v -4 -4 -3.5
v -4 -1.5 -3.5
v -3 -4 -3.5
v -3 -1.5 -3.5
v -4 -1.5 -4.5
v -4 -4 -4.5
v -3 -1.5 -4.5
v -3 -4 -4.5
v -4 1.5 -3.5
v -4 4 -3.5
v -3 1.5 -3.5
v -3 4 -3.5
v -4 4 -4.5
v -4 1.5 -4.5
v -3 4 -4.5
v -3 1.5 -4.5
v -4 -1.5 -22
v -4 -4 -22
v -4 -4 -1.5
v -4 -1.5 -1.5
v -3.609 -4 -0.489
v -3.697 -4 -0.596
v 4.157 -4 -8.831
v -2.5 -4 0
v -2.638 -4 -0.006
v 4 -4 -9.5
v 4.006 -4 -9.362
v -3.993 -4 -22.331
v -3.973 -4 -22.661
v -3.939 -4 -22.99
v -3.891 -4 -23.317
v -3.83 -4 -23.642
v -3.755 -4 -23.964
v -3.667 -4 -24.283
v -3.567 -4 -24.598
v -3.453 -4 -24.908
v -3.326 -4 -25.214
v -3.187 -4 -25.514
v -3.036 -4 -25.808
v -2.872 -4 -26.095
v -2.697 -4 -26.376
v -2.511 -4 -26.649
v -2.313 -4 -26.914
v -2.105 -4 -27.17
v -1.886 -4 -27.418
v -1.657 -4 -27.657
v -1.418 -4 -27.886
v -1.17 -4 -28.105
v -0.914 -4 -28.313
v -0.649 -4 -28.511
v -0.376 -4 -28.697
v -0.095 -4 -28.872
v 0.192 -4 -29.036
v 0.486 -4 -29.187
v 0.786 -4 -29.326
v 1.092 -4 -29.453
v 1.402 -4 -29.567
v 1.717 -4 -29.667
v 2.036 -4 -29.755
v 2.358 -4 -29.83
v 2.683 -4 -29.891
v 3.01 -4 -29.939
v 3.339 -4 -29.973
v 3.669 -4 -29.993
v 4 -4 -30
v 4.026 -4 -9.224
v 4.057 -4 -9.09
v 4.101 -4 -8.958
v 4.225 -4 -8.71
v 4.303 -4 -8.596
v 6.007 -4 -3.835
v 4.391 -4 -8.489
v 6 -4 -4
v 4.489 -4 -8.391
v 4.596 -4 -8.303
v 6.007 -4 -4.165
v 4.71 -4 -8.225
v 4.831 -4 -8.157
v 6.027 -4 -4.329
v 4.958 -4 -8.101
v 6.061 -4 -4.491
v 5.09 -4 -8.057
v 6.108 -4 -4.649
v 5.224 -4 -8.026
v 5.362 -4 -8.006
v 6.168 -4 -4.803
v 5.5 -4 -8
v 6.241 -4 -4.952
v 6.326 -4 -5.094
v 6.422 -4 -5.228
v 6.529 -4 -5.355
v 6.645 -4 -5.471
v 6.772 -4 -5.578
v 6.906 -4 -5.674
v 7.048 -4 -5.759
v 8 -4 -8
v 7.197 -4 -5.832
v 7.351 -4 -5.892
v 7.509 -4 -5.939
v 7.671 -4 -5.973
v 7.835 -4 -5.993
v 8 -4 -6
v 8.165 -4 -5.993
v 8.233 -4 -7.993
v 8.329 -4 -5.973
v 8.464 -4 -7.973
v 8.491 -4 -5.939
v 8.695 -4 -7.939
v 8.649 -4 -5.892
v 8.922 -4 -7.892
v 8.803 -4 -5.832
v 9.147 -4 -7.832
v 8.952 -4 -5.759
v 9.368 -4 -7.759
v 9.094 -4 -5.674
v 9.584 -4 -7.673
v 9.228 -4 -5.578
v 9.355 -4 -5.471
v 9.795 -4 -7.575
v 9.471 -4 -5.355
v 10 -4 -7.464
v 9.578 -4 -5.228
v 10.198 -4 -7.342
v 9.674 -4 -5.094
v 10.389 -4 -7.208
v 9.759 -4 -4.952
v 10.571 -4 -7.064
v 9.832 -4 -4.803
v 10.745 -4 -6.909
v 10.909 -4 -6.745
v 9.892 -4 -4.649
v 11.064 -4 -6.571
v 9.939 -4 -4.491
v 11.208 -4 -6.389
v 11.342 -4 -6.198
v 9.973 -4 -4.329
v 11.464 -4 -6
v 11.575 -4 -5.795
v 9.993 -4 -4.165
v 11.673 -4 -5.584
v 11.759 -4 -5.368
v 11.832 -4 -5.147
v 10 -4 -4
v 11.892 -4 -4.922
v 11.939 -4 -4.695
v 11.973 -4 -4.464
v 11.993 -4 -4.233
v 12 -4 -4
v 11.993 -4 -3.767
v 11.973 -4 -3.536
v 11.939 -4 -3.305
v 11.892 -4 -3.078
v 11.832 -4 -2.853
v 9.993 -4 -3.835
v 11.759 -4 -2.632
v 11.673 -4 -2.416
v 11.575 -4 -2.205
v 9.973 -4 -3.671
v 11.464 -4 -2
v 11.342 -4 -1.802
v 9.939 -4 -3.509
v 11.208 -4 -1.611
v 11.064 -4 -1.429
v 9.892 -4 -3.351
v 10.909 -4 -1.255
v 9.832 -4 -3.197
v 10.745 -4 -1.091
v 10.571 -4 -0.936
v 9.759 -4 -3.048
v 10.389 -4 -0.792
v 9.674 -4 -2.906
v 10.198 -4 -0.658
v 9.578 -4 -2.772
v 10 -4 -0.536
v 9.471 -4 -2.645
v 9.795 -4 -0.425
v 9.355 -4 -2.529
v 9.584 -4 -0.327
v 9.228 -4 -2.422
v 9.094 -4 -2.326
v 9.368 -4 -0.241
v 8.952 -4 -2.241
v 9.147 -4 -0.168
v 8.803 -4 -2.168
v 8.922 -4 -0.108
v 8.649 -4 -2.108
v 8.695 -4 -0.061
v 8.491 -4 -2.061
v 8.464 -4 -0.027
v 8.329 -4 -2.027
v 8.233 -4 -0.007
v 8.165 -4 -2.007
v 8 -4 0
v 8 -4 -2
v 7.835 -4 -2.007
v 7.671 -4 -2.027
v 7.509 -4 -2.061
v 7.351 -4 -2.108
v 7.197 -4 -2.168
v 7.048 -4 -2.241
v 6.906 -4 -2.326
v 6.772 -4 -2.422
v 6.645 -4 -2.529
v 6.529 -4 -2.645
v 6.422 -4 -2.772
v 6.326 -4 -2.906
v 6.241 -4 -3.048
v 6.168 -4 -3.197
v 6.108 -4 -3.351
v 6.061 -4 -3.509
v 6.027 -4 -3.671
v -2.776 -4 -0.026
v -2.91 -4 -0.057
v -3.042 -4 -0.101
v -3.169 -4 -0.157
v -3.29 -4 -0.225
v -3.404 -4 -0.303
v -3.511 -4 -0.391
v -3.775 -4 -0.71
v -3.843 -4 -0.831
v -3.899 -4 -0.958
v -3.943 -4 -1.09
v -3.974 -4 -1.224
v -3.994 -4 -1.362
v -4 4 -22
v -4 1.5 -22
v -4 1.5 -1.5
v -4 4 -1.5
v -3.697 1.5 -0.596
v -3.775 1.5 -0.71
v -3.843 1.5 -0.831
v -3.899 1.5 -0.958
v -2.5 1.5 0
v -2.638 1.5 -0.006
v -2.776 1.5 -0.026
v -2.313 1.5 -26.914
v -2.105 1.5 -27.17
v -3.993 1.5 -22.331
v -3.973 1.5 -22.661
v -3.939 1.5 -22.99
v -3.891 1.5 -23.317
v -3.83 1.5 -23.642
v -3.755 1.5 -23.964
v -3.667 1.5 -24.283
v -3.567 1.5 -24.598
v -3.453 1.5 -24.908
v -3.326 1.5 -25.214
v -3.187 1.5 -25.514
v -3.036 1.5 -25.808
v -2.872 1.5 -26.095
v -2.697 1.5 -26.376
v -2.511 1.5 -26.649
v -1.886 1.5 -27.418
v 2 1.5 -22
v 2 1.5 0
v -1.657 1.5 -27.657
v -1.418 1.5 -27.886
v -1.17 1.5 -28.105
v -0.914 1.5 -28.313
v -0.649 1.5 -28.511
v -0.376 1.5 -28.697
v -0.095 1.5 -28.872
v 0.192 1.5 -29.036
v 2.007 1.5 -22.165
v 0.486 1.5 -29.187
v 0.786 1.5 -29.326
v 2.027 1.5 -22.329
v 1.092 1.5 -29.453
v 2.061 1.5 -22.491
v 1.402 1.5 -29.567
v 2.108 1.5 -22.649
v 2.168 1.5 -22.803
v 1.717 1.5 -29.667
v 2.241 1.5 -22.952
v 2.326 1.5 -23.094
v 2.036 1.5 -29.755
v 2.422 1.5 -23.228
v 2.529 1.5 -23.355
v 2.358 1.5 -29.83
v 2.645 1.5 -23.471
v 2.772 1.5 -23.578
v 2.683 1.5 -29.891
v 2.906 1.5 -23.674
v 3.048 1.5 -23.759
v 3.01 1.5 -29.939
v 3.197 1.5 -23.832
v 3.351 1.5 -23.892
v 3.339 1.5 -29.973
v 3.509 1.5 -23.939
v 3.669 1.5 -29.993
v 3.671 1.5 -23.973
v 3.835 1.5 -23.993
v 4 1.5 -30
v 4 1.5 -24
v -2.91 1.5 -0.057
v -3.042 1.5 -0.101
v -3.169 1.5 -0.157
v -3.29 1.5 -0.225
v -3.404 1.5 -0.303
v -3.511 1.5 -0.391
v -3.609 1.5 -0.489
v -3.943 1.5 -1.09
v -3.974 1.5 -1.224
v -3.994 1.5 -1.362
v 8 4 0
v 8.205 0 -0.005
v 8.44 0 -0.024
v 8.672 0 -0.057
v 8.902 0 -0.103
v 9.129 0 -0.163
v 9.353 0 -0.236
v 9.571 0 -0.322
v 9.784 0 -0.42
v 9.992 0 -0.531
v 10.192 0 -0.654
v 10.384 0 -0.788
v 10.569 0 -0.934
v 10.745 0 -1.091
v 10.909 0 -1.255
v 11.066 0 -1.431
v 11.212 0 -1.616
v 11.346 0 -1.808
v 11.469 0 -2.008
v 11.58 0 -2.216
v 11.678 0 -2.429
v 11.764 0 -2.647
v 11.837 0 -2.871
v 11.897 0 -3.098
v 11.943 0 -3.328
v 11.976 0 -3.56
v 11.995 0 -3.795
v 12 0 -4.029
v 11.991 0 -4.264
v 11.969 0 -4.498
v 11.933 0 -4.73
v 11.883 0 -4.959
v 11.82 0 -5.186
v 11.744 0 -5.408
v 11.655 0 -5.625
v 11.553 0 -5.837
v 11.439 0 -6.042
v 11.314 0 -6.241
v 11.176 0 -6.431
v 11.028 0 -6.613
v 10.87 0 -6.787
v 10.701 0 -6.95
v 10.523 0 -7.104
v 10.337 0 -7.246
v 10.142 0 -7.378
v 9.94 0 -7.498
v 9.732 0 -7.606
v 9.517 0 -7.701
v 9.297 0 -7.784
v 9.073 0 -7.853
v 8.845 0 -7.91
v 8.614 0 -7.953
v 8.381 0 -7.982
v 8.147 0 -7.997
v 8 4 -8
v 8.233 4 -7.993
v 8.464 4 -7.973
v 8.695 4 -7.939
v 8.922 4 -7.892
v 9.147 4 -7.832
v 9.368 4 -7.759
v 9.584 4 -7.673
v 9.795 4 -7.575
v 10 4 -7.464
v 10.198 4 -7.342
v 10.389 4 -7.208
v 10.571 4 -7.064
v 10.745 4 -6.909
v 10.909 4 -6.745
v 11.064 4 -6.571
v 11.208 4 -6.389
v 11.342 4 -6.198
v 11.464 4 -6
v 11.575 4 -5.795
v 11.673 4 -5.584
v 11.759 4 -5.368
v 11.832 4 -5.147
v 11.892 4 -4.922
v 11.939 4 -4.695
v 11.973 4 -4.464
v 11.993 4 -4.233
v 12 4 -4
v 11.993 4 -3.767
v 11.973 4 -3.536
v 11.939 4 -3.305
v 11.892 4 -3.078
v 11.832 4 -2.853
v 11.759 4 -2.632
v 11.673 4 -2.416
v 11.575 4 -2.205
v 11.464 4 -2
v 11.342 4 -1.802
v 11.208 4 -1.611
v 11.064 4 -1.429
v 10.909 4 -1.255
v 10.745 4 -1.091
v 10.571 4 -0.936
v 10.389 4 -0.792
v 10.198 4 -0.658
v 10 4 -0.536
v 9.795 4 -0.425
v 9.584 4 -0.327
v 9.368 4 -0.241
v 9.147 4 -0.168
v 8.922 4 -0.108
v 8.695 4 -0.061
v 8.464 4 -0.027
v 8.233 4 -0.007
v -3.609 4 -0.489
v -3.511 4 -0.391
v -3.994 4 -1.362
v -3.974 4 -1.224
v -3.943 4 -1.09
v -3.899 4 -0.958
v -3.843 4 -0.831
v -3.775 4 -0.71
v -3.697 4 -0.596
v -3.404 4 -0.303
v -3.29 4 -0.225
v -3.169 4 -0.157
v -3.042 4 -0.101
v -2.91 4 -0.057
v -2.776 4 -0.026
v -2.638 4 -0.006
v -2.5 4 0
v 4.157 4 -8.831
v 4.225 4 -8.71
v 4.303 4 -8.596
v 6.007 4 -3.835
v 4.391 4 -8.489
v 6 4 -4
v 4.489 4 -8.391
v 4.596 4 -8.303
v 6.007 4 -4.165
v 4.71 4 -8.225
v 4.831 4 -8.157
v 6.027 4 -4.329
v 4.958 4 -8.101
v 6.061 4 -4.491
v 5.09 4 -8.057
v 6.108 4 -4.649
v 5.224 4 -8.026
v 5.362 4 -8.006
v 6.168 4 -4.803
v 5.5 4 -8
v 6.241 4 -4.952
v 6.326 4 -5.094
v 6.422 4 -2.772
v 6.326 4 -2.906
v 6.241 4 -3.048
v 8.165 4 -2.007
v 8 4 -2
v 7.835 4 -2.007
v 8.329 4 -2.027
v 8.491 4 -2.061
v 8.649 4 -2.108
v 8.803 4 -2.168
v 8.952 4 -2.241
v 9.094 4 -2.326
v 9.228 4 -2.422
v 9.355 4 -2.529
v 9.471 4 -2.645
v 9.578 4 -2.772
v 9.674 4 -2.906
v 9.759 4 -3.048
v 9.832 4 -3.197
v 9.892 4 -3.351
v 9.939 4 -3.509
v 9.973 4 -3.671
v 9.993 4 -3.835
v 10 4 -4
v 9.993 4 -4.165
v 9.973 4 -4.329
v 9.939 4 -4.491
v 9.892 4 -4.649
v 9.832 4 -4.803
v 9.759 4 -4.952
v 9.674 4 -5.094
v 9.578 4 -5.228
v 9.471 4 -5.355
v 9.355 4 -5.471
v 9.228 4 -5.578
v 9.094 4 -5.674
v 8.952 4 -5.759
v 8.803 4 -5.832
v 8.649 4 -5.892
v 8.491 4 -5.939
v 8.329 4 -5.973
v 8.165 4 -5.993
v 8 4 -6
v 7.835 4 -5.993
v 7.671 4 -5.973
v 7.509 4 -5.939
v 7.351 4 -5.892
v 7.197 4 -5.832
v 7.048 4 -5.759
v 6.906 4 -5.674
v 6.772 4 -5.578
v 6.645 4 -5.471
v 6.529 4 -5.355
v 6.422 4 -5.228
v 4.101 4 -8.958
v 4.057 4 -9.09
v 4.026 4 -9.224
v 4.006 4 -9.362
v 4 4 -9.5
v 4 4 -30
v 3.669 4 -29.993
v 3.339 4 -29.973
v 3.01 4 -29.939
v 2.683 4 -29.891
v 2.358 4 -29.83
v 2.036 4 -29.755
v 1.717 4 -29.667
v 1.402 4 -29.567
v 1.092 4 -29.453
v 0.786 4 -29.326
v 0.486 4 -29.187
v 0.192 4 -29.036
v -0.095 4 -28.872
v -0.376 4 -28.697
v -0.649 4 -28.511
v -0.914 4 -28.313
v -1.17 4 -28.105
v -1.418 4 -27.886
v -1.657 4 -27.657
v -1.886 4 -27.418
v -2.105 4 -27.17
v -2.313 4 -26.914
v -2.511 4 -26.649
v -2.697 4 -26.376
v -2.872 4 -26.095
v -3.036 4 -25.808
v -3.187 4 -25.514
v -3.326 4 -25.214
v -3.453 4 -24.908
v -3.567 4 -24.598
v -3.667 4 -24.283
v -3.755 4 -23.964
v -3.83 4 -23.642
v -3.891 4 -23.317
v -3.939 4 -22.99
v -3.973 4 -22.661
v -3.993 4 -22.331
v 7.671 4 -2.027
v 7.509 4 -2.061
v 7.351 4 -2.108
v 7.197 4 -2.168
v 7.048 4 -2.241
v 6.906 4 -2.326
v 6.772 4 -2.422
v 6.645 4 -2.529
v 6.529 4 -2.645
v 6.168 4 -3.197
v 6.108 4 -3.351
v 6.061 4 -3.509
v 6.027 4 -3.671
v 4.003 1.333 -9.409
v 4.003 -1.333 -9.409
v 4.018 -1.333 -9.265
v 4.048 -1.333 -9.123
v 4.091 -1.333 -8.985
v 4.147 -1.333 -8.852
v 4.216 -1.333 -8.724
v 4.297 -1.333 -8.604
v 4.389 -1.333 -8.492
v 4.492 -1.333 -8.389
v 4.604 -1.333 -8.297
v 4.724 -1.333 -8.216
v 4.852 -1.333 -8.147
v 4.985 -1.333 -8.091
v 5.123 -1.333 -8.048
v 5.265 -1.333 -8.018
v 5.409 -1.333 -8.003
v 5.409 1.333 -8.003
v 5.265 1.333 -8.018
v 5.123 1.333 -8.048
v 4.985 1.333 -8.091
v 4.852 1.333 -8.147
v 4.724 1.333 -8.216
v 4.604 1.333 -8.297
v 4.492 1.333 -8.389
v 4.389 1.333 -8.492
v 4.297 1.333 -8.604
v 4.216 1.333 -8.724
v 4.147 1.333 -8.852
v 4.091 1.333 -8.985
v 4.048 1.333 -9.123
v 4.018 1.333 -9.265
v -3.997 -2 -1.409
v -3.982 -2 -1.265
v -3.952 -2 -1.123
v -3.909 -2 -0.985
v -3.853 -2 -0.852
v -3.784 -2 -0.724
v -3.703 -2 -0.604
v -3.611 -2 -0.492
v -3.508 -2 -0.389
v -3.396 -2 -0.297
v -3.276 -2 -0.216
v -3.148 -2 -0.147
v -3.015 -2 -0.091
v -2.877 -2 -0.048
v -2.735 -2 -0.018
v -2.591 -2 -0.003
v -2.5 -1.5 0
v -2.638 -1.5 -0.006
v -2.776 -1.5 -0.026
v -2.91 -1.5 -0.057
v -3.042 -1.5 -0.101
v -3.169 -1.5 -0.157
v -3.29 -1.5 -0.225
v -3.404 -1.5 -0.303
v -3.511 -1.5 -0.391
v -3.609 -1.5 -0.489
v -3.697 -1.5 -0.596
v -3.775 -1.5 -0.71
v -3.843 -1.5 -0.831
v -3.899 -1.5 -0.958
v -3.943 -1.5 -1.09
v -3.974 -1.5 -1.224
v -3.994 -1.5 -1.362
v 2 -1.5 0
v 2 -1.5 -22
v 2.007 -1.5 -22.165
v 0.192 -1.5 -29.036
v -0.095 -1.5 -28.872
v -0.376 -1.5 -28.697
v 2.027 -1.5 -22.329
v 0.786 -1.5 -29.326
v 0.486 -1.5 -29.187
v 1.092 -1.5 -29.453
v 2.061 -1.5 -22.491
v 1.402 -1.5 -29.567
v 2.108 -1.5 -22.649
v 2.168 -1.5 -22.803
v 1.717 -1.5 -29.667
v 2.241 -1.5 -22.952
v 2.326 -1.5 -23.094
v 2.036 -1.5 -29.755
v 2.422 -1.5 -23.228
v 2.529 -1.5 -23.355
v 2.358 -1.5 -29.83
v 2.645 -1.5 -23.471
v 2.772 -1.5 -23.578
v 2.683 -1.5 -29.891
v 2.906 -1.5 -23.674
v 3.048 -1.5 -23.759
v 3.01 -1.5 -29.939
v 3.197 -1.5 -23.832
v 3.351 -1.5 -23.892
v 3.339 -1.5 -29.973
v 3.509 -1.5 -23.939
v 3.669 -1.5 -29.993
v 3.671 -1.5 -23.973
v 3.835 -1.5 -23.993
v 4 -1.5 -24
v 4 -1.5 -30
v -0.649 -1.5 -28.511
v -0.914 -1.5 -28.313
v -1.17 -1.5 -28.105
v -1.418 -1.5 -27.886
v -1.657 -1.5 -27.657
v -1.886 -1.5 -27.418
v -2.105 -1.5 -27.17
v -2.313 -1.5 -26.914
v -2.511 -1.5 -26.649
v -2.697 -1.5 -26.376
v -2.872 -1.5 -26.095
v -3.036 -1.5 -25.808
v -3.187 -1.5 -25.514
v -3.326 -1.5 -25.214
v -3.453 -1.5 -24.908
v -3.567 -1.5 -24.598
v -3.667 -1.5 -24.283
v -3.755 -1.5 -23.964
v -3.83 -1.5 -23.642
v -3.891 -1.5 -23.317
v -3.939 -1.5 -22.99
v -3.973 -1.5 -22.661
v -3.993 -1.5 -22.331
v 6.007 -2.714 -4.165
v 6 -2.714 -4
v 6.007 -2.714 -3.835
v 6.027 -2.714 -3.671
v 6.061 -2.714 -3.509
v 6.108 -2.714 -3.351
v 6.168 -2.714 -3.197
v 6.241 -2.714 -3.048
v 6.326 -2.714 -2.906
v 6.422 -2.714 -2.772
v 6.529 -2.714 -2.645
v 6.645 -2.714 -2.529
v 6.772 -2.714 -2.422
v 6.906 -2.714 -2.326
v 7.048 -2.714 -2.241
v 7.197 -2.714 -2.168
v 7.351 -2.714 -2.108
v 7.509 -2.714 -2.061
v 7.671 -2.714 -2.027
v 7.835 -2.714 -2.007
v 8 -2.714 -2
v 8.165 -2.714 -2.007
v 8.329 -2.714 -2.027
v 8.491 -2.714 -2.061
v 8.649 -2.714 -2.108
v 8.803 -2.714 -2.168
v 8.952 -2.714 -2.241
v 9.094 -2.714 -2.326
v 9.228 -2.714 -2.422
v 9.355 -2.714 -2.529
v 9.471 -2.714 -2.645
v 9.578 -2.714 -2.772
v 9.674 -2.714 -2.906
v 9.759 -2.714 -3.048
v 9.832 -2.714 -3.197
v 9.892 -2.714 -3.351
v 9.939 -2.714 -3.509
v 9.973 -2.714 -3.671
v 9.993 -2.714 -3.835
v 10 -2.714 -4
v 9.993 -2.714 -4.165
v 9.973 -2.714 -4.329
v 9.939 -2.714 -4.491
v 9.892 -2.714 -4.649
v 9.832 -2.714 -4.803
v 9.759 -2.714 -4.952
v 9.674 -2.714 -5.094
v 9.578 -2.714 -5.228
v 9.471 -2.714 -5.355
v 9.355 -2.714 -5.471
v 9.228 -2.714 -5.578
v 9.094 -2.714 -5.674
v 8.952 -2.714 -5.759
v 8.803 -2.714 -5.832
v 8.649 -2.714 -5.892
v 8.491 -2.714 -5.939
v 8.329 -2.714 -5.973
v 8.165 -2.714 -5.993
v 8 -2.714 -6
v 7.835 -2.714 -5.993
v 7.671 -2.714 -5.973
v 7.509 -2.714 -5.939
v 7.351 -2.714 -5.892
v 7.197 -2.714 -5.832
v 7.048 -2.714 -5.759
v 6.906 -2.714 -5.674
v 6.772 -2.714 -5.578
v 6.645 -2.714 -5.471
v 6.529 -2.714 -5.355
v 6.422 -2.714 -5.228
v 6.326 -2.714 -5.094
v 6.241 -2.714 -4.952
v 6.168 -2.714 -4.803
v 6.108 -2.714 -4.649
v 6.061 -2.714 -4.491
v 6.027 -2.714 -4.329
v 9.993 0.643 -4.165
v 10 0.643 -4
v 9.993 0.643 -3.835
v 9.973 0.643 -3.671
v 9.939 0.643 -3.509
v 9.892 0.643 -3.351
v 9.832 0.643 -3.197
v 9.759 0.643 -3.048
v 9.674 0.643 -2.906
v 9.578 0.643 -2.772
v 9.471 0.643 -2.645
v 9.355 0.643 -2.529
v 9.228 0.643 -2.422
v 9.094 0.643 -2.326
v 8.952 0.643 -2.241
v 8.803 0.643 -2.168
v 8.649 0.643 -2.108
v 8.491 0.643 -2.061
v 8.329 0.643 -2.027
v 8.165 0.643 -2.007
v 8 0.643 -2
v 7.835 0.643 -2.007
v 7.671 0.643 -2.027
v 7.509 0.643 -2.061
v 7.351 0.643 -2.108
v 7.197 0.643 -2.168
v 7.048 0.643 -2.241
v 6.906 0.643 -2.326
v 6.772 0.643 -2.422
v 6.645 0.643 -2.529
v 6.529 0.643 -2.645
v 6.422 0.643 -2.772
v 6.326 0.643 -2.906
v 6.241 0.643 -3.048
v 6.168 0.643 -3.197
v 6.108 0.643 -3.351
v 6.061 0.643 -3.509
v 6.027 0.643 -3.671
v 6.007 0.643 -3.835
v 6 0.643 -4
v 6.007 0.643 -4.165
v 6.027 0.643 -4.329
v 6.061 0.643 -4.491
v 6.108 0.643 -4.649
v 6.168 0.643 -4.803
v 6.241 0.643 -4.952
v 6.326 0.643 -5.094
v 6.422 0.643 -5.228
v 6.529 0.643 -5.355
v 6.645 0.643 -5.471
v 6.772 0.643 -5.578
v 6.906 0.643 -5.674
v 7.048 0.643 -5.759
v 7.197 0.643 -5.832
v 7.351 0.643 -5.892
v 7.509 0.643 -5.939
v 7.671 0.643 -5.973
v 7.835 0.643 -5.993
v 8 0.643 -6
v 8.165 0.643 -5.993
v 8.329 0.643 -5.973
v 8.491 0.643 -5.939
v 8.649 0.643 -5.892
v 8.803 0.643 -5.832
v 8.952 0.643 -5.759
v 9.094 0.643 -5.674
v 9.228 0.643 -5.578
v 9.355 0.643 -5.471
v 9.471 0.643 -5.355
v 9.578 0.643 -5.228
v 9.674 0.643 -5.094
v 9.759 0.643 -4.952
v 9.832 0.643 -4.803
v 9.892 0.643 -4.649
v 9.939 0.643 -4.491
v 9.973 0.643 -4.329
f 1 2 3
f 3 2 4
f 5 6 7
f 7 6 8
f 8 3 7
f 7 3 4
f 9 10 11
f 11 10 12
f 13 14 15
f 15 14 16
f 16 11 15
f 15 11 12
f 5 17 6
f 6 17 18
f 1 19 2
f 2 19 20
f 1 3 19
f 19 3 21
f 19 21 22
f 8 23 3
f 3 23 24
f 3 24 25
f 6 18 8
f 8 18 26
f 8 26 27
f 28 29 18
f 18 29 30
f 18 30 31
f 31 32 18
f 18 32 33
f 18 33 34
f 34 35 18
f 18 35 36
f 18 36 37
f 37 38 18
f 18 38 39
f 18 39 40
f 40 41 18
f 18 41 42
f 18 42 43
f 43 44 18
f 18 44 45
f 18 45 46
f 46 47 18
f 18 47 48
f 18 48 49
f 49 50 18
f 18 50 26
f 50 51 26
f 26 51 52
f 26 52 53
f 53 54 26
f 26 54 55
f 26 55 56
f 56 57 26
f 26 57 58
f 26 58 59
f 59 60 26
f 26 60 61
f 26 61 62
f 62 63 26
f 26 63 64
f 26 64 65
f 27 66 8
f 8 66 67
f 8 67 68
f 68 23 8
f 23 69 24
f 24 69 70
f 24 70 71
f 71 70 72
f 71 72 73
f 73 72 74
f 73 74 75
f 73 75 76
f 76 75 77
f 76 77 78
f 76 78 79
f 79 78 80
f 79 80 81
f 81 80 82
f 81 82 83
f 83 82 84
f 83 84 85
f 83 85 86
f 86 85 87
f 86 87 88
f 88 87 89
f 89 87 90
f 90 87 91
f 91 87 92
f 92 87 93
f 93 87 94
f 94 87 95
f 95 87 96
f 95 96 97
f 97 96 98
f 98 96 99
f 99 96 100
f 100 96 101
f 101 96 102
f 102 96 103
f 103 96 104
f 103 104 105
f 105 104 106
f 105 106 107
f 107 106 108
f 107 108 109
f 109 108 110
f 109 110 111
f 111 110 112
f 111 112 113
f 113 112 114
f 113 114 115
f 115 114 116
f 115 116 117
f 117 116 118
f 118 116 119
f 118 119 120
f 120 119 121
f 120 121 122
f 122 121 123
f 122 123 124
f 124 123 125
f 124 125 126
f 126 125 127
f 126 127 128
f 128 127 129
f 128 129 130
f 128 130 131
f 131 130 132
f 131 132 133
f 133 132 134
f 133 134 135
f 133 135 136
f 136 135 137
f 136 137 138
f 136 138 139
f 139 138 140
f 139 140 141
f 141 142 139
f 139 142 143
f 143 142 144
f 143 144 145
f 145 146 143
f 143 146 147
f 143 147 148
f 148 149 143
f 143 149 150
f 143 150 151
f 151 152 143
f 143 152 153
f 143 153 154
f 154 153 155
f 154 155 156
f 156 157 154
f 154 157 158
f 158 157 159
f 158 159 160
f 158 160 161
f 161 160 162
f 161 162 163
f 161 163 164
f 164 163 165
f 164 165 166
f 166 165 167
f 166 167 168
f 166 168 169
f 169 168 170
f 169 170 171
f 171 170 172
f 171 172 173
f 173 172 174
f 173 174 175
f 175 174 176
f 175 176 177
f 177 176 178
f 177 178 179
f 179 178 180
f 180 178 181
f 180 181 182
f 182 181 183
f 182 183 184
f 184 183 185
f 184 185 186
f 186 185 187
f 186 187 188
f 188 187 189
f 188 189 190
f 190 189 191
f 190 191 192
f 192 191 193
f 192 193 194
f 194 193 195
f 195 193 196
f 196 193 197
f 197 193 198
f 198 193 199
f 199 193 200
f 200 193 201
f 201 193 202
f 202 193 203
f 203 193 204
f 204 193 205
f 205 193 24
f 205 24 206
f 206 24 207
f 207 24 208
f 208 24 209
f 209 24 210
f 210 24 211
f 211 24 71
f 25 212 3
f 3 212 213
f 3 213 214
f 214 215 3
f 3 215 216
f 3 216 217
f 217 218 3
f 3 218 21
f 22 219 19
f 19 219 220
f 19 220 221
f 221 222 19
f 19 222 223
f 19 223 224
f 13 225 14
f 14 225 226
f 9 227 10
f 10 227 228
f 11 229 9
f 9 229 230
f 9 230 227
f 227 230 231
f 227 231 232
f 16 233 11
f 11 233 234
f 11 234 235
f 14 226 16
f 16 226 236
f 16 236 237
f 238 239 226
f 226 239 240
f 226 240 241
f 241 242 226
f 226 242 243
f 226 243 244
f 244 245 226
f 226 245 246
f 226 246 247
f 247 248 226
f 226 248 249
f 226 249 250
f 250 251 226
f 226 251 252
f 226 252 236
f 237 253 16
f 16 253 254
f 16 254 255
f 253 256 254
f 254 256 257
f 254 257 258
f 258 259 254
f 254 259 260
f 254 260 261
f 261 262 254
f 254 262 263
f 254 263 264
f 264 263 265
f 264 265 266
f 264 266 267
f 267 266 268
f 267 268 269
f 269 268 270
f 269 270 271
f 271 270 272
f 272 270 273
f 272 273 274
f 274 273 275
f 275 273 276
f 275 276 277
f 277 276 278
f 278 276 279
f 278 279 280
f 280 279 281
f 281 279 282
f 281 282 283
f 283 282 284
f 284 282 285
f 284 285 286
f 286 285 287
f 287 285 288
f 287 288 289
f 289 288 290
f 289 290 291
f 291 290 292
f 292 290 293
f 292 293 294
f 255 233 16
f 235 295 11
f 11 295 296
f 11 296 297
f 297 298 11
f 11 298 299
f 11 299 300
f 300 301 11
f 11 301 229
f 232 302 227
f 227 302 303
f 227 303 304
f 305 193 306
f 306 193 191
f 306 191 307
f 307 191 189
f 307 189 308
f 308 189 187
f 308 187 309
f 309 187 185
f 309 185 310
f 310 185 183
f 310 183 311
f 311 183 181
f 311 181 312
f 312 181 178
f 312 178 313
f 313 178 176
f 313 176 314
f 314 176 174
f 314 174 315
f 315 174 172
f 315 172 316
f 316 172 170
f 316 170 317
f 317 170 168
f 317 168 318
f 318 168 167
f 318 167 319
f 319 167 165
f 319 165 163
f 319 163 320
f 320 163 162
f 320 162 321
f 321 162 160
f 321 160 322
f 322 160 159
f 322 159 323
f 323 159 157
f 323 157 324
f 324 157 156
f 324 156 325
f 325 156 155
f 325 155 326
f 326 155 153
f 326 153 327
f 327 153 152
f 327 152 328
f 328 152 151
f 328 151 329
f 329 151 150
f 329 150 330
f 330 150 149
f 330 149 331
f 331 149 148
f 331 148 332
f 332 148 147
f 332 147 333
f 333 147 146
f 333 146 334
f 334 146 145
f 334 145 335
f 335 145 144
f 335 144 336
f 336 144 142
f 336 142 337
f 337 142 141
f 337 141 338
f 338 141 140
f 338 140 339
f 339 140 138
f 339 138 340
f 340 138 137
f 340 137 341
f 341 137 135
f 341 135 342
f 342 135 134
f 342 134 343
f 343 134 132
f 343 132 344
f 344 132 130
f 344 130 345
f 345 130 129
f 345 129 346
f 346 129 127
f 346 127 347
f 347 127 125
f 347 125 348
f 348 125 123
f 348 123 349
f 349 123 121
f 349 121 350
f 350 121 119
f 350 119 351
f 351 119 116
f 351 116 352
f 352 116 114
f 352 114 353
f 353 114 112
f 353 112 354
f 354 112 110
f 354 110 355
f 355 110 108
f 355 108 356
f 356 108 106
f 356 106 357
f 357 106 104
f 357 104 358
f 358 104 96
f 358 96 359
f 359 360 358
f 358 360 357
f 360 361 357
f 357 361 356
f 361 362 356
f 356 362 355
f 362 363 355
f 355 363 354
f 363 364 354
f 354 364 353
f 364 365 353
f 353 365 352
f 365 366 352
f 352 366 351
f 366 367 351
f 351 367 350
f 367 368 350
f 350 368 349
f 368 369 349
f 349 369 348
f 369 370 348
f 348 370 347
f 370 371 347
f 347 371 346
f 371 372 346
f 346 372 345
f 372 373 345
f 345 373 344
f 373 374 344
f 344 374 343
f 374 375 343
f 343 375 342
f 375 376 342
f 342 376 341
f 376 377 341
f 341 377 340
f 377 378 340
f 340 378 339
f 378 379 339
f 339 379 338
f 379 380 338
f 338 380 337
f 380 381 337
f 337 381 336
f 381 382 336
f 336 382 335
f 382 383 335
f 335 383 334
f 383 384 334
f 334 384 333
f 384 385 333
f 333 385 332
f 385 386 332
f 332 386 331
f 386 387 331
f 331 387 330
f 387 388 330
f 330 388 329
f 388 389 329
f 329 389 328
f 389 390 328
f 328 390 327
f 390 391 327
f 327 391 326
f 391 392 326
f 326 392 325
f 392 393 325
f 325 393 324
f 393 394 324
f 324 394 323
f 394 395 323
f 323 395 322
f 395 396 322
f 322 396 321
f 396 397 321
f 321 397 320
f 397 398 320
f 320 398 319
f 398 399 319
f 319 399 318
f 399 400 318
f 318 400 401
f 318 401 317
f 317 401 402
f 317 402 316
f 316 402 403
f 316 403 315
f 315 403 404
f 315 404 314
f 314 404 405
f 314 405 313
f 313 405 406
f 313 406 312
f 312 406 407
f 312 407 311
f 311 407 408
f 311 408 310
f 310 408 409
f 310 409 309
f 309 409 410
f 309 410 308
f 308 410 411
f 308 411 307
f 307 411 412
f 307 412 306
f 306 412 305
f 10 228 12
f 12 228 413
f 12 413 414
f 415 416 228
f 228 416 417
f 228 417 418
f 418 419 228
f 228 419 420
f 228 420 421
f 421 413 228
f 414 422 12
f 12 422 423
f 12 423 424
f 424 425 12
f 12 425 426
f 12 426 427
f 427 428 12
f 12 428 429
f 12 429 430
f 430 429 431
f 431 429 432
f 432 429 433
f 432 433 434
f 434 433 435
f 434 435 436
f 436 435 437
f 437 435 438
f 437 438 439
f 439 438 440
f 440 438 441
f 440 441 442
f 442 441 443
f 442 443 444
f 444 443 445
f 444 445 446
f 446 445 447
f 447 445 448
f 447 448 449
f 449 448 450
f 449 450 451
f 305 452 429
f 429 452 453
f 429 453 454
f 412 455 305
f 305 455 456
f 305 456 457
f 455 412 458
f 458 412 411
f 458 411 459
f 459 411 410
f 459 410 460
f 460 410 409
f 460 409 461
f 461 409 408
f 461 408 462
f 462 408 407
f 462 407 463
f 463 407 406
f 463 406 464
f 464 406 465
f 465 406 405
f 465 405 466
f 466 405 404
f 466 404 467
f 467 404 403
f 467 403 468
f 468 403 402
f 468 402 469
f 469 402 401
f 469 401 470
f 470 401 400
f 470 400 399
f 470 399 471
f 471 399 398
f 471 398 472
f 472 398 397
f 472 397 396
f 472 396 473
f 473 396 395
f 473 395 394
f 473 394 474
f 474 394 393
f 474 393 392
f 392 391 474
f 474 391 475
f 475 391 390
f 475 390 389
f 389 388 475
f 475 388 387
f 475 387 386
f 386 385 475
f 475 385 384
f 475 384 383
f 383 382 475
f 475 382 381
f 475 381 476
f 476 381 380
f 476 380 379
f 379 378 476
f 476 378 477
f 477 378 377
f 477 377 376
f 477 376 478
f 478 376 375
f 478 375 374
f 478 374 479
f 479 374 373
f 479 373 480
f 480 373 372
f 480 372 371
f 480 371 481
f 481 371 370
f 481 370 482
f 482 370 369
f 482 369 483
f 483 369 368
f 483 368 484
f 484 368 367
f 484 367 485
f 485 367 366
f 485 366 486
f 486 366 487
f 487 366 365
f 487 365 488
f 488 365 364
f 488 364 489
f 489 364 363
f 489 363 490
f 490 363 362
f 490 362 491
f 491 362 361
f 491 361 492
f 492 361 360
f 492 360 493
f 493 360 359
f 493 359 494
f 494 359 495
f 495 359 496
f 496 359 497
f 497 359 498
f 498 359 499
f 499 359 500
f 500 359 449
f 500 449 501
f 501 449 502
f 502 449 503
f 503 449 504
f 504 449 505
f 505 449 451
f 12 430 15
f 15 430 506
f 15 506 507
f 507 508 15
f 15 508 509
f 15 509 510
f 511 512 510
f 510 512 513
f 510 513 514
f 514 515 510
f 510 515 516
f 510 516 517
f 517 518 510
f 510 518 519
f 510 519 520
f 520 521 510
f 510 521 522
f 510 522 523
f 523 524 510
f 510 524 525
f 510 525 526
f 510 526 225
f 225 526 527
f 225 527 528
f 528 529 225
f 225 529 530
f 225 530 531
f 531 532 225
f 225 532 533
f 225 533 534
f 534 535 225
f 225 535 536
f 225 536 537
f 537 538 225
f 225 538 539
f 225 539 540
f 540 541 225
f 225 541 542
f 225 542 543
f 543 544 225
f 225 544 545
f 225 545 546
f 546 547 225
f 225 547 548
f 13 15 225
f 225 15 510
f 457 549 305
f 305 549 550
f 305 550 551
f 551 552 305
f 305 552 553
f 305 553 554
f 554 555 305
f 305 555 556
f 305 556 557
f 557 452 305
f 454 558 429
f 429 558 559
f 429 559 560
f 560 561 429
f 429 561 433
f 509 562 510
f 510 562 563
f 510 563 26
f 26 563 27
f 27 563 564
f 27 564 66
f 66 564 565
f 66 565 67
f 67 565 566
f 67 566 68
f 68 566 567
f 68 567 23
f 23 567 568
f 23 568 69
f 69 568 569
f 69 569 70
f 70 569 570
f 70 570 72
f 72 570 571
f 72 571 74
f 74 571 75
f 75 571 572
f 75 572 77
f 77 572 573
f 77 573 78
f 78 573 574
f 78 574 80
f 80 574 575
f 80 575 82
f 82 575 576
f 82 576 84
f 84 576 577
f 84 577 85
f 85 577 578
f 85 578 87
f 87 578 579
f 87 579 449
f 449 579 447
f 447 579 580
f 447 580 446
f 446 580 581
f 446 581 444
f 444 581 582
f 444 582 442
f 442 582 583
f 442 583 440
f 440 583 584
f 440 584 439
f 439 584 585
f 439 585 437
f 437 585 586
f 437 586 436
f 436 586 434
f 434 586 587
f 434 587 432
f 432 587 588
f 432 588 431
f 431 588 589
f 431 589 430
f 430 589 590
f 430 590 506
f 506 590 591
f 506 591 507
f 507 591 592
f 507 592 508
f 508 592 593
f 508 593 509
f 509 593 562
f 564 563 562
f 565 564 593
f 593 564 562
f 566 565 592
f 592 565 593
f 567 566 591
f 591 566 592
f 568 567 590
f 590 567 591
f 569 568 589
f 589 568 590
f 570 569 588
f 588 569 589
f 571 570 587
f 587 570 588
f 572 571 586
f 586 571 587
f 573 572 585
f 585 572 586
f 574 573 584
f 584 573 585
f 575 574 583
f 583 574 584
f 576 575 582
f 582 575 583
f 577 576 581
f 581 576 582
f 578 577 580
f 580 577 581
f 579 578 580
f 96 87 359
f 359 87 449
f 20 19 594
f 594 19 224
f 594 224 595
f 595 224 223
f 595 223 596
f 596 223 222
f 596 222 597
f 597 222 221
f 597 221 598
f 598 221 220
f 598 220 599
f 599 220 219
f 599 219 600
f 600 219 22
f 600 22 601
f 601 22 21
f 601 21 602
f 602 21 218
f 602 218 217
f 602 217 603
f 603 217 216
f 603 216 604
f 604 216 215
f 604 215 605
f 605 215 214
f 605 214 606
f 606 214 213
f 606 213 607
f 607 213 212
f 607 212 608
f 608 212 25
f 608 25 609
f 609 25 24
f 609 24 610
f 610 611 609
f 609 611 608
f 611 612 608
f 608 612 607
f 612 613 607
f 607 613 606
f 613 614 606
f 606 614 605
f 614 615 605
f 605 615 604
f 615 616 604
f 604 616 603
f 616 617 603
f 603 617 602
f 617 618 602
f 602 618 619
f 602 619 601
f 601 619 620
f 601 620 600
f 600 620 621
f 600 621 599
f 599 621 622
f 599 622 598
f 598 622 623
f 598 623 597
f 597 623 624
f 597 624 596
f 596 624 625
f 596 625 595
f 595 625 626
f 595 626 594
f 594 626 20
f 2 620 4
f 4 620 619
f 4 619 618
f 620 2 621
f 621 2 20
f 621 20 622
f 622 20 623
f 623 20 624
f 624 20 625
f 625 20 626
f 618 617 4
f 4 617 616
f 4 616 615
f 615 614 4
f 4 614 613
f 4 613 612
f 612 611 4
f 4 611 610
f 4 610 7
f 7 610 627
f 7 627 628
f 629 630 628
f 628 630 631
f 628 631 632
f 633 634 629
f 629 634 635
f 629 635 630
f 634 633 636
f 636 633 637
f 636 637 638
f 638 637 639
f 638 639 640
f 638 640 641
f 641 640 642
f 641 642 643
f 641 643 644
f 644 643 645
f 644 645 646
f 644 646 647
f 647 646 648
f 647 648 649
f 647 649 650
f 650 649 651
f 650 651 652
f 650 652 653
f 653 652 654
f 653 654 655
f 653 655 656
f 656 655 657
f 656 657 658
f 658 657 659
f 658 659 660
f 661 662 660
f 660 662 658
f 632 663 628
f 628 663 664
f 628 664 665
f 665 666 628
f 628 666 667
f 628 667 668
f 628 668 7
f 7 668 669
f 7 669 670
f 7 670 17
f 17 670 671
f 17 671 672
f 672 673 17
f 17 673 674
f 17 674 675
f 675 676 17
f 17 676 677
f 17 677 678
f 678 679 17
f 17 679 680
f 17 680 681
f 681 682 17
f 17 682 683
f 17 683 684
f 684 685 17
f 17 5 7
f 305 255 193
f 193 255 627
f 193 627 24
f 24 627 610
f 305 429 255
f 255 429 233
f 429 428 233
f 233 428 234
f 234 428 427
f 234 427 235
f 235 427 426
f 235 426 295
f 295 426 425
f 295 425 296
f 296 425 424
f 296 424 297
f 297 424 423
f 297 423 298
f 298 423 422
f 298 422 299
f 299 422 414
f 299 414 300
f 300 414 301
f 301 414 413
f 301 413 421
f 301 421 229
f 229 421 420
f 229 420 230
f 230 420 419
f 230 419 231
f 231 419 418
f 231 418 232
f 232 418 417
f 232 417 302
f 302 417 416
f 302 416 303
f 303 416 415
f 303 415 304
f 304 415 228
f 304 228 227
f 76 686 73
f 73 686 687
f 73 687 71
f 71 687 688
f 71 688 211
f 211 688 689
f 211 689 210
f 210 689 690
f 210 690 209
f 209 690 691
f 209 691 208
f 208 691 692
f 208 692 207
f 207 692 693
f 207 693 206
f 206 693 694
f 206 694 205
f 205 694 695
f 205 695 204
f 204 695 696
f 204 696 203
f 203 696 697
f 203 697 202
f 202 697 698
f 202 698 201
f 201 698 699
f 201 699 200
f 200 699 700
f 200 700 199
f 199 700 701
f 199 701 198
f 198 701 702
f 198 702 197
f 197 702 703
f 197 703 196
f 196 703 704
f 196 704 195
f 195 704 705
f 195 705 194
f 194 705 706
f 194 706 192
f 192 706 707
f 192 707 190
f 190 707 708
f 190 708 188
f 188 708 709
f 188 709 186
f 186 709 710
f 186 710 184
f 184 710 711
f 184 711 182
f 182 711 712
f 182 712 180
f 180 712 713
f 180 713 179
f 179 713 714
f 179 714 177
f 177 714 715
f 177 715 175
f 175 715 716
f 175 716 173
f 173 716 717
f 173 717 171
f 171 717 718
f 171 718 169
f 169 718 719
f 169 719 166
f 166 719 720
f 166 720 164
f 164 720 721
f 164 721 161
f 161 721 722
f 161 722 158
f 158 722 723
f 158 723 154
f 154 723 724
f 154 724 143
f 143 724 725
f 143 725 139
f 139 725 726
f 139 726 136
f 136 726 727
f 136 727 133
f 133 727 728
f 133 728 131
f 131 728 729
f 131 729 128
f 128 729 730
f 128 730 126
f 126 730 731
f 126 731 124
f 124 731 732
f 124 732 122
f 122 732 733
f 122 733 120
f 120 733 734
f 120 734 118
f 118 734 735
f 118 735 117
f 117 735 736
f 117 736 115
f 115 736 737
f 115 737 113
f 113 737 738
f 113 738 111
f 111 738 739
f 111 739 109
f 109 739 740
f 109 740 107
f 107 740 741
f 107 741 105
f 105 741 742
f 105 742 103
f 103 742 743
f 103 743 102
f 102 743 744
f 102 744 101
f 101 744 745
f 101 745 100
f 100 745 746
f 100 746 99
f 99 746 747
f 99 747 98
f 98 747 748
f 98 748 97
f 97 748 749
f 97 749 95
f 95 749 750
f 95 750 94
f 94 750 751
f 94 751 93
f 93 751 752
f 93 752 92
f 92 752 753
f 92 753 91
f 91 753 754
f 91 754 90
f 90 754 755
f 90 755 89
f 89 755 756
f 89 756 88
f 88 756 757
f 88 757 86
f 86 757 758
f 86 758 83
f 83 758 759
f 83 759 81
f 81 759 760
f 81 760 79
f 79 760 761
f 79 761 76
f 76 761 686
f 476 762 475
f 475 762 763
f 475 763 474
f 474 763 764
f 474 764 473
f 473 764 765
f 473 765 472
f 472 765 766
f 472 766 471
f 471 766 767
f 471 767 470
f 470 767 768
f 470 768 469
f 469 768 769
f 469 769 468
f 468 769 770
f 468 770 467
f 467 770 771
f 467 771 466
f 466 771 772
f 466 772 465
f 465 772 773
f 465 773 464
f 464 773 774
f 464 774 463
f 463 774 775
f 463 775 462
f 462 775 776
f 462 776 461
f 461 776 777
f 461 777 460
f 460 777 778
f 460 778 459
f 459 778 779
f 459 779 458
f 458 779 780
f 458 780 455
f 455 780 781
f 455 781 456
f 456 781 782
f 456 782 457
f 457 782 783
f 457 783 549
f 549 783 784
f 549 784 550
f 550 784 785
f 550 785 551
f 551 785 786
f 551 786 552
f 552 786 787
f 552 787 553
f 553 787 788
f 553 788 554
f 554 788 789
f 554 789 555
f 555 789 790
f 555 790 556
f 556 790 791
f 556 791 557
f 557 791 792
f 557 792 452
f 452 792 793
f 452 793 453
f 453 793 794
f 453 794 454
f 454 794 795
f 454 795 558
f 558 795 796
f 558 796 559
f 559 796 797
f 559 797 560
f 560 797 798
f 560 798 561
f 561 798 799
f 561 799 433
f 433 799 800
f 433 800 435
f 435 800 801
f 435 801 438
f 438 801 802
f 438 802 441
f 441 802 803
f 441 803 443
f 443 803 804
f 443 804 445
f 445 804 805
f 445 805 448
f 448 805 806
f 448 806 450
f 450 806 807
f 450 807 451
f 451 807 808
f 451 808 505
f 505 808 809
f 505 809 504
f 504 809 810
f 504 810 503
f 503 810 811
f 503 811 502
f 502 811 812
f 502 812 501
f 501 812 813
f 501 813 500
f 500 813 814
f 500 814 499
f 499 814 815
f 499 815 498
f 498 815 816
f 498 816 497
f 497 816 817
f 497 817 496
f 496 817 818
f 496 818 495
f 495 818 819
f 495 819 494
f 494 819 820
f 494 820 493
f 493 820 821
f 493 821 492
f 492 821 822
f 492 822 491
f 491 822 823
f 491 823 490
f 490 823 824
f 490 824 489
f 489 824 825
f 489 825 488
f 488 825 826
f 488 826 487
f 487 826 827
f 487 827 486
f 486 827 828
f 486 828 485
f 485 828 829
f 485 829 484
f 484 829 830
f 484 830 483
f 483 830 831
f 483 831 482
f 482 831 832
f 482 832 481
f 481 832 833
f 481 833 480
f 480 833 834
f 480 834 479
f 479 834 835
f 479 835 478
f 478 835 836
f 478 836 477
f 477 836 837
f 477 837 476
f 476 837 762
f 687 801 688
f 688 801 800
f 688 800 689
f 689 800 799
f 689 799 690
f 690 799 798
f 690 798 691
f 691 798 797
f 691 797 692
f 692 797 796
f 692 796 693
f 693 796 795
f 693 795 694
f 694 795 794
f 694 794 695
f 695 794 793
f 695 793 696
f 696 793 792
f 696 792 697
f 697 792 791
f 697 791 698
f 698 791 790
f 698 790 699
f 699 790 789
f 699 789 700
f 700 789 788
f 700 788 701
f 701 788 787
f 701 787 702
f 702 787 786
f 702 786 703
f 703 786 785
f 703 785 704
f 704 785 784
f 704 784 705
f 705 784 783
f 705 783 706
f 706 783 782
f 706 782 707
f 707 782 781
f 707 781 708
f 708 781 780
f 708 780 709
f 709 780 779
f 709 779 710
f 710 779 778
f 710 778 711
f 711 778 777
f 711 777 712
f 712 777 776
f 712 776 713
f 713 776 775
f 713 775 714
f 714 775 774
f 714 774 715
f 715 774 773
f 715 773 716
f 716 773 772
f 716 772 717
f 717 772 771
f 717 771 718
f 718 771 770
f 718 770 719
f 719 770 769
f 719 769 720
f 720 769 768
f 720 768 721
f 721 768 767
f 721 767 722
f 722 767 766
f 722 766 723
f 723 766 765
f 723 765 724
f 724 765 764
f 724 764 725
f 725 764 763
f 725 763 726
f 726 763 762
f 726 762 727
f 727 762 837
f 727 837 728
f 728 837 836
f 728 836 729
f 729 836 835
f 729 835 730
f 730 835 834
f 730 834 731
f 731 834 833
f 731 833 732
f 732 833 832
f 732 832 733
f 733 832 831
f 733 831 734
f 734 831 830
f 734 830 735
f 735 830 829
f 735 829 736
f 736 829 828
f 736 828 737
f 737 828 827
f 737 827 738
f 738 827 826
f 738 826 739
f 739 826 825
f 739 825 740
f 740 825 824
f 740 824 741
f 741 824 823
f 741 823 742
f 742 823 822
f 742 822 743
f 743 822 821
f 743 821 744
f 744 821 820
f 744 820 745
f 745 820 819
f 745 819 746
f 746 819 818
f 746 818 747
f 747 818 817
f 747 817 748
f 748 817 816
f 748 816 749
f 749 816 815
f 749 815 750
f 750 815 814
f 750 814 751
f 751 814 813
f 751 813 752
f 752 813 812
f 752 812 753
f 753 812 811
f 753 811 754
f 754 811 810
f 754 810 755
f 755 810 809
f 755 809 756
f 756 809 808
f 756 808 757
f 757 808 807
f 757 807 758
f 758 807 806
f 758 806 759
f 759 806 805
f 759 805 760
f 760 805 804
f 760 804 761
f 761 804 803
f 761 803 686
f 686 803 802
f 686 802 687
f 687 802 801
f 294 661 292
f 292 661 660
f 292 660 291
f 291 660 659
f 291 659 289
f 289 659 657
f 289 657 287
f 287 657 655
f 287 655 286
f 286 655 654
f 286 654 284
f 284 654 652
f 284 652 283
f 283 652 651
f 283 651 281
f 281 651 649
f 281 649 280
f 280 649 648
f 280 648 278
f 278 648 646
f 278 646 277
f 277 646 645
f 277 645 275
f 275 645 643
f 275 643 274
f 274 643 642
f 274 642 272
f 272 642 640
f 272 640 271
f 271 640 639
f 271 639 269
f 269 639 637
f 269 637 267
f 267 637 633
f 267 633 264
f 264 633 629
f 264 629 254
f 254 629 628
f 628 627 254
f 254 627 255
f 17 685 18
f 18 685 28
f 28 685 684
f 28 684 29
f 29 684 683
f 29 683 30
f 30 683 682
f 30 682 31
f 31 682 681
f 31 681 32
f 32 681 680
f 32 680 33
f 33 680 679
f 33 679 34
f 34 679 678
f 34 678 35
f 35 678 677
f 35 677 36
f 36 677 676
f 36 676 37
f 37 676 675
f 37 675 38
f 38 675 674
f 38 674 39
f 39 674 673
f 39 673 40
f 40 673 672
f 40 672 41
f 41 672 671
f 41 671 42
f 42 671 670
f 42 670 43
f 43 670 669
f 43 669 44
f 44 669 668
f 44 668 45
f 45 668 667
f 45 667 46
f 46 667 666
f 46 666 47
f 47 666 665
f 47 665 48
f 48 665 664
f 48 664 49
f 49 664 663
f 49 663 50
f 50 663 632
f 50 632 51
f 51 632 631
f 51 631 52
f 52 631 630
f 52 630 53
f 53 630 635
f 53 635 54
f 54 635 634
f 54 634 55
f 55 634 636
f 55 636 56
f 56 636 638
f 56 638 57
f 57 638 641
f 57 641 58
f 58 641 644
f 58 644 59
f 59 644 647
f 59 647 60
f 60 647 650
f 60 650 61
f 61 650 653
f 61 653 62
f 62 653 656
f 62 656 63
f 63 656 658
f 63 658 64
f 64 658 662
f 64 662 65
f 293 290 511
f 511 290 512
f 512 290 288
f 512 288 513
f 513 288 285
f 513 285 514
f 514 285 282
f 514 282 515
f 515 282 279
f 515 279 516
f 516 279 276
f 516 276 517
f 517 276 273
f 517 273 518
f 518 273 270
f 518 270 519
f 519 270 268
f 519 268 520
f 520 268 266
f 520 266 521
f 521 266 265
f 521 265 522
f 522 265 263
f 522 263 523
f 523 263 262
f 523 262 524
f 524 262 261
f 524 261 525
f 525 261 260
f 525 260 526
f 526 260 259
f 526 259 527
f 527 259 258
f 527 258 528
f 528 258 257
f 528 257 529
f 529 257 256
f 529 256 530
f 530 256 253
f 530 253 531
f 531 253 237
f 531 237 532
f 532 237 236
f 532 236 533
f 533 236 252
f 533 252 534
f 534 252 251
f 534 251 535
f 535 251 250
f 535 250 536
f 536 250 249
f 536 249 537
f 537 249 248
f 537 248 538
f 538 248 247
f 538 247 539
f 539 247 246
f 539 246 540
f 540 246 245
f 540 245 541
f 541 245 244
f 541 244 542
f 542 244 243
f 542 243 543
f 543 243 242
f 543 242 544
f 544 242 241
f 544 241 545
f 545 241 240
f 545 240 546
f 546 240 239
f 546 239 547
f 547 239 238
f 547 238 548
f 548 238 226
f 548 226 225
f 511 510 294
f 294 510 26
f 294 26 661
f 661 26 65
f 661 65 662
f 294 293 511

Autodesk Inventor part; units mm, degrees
ref_plane "YZ Plane" through (0, 0, 0) normal (1, 0, 0) x (0, 1, 0)
ref_plane "XZ Plane" through (0, 0, 0) normal (0, 1, 0) x (-1, 0, 0)
ref_plane "XY Plane" through (0, 0, 0) normal (0, 0, 1) x (1, 0, 0)
sketch "Esquisse3" plane through (0, 0, 0) normal (0, 1, 0) x (-1, 0, 0)
  line L0 (4, 0) -> (-4, 0)
  line L1 (-4, 0) -> (-4, -30)
  arc A0 (-4, -30) -> (4, -22) centre (-4, -22) ccw
  line L2 (4, 0) -> (4, -22)
  point P0 (0, 0)
  point P1 (0, 0)
  dimension "d21" = 8
  dimension "d22" = 30
extrude "Extrusion2" add sketch "Esquisse3" along normal mid plane 8
sketch "Esquisse4" plane through (0, 0, 0) normal (0, 1, 0) x (-1, 0, 0)
  line L0 (-4, 0) -> (4, 0) projected
  line L1 (4, 0) -> (4, -22) projected
  arc A0 (-4, -30) -> (4, -22) centre (-4, -22) ccw projected
  line L2 (-4, -30) -> (-4, 0) projected
  line L3 (-4, -30) -> (-4, 0) projected
  line L4 (-2, -22) -> (-2, 0)
  arc A1 (-4, -24) -> (-2, -22) centre (-4, -22) ccw
  point P0 (0, 0)
  dimension "d26" = 6
  dimension "d27" = 6
extrude "Extrusion3" cut sketch "Esquisse4" along normal mid plane 3 contours L0 L1 A0 L2 A1 L4
sketch "Esquisse5" plane through (0, 4, 0) normal (0, 1, 0) x (1, 0, 0)
  line L0 (4, 30) -> (4, 0) projected
  line L1 (4, 0) -> (12, 0)
  line L2 (12, 0) -> (12, 8)
  line L3 (12, 8) -> (4, 8)
  line L4 (4, 8) -> (4, 0)
  point P0 (0, 0)
  dimension "d30" = 8
  dimension "d31" = 8
extrude "Extrusion4" add sketch "Esquisse5" against normal up to surface (8 mm away)
sketch "Esquisse6" plane through (0, 4, 0) normal (0, 1, 0) x (1, 0, 0)
  line L0 (-4, 0) -> (12, 0) projected
  line L1 (12, 0) -> (12, 8) projected
  line L2 (4, 8) -> (4, 30) projected
  point P0 (0, 0)
  point P1 (8, 4)
  dimension "d34" = 4
  dimension "d47" = 4
hole "Perçage2" at (8, 4, -4) direction (0, -1, 0) diameter 4 depth 8
fillet "Congé2" radius 1.5 3 edges at (-4, 2.75, 0) (-4, -2.75, 0) (4, 0, -8)
fillet "Congé3" radius 4 2 edges at (12, 0, 0) (12, 0, -8)
sketch "Esquisse7" plane through (-4, 1.5, -22) normal (-1, 0, 0) x (0, 0, 1)
  line L0 (16, 2.5) -> (20, 2.5) projected
  line L1 (20.5, -5.5) -> (0, -5.5) projected
  line L2 (20.5, -3) -> (0, -3) projected
  line L3 (17.5, -5.5) -> (18.5, -5.5)
  line L4 (18.5, -5.5) -> (18.5, -3)
  line L5 (18.5, -3) -> (17.5, -3)
  line L6 (17.5, -3) -> (17.5, -5.5)
  line L7 (0, 0) -> (20.5, 0) projected
  line L8 (0, 2.5) -> (20.5, 2.5) projected
  line L9 (17.5, 0) -> (18.5, 0)
  line L10 (18.5, 0) -> (18.5, 2.5)
  line L11 (18.5, 2.5) -> (17.5, 2.5)
  line L12 (17.5, 2.5) -> (17.5, 0)
  line L13 (20, -5.5) -> (16, -5.5) projected
  line L14 (16, 2.5) -> (20, 2.5) projected
  point P0 (22, -1.5)
  point P1 (18, 2.5)
  dimension "d49" = 1
extrude "Extrusion5" cut sketch "Esquisse7" against normal blind 1
properties part number "viseur_reglable_piece"
